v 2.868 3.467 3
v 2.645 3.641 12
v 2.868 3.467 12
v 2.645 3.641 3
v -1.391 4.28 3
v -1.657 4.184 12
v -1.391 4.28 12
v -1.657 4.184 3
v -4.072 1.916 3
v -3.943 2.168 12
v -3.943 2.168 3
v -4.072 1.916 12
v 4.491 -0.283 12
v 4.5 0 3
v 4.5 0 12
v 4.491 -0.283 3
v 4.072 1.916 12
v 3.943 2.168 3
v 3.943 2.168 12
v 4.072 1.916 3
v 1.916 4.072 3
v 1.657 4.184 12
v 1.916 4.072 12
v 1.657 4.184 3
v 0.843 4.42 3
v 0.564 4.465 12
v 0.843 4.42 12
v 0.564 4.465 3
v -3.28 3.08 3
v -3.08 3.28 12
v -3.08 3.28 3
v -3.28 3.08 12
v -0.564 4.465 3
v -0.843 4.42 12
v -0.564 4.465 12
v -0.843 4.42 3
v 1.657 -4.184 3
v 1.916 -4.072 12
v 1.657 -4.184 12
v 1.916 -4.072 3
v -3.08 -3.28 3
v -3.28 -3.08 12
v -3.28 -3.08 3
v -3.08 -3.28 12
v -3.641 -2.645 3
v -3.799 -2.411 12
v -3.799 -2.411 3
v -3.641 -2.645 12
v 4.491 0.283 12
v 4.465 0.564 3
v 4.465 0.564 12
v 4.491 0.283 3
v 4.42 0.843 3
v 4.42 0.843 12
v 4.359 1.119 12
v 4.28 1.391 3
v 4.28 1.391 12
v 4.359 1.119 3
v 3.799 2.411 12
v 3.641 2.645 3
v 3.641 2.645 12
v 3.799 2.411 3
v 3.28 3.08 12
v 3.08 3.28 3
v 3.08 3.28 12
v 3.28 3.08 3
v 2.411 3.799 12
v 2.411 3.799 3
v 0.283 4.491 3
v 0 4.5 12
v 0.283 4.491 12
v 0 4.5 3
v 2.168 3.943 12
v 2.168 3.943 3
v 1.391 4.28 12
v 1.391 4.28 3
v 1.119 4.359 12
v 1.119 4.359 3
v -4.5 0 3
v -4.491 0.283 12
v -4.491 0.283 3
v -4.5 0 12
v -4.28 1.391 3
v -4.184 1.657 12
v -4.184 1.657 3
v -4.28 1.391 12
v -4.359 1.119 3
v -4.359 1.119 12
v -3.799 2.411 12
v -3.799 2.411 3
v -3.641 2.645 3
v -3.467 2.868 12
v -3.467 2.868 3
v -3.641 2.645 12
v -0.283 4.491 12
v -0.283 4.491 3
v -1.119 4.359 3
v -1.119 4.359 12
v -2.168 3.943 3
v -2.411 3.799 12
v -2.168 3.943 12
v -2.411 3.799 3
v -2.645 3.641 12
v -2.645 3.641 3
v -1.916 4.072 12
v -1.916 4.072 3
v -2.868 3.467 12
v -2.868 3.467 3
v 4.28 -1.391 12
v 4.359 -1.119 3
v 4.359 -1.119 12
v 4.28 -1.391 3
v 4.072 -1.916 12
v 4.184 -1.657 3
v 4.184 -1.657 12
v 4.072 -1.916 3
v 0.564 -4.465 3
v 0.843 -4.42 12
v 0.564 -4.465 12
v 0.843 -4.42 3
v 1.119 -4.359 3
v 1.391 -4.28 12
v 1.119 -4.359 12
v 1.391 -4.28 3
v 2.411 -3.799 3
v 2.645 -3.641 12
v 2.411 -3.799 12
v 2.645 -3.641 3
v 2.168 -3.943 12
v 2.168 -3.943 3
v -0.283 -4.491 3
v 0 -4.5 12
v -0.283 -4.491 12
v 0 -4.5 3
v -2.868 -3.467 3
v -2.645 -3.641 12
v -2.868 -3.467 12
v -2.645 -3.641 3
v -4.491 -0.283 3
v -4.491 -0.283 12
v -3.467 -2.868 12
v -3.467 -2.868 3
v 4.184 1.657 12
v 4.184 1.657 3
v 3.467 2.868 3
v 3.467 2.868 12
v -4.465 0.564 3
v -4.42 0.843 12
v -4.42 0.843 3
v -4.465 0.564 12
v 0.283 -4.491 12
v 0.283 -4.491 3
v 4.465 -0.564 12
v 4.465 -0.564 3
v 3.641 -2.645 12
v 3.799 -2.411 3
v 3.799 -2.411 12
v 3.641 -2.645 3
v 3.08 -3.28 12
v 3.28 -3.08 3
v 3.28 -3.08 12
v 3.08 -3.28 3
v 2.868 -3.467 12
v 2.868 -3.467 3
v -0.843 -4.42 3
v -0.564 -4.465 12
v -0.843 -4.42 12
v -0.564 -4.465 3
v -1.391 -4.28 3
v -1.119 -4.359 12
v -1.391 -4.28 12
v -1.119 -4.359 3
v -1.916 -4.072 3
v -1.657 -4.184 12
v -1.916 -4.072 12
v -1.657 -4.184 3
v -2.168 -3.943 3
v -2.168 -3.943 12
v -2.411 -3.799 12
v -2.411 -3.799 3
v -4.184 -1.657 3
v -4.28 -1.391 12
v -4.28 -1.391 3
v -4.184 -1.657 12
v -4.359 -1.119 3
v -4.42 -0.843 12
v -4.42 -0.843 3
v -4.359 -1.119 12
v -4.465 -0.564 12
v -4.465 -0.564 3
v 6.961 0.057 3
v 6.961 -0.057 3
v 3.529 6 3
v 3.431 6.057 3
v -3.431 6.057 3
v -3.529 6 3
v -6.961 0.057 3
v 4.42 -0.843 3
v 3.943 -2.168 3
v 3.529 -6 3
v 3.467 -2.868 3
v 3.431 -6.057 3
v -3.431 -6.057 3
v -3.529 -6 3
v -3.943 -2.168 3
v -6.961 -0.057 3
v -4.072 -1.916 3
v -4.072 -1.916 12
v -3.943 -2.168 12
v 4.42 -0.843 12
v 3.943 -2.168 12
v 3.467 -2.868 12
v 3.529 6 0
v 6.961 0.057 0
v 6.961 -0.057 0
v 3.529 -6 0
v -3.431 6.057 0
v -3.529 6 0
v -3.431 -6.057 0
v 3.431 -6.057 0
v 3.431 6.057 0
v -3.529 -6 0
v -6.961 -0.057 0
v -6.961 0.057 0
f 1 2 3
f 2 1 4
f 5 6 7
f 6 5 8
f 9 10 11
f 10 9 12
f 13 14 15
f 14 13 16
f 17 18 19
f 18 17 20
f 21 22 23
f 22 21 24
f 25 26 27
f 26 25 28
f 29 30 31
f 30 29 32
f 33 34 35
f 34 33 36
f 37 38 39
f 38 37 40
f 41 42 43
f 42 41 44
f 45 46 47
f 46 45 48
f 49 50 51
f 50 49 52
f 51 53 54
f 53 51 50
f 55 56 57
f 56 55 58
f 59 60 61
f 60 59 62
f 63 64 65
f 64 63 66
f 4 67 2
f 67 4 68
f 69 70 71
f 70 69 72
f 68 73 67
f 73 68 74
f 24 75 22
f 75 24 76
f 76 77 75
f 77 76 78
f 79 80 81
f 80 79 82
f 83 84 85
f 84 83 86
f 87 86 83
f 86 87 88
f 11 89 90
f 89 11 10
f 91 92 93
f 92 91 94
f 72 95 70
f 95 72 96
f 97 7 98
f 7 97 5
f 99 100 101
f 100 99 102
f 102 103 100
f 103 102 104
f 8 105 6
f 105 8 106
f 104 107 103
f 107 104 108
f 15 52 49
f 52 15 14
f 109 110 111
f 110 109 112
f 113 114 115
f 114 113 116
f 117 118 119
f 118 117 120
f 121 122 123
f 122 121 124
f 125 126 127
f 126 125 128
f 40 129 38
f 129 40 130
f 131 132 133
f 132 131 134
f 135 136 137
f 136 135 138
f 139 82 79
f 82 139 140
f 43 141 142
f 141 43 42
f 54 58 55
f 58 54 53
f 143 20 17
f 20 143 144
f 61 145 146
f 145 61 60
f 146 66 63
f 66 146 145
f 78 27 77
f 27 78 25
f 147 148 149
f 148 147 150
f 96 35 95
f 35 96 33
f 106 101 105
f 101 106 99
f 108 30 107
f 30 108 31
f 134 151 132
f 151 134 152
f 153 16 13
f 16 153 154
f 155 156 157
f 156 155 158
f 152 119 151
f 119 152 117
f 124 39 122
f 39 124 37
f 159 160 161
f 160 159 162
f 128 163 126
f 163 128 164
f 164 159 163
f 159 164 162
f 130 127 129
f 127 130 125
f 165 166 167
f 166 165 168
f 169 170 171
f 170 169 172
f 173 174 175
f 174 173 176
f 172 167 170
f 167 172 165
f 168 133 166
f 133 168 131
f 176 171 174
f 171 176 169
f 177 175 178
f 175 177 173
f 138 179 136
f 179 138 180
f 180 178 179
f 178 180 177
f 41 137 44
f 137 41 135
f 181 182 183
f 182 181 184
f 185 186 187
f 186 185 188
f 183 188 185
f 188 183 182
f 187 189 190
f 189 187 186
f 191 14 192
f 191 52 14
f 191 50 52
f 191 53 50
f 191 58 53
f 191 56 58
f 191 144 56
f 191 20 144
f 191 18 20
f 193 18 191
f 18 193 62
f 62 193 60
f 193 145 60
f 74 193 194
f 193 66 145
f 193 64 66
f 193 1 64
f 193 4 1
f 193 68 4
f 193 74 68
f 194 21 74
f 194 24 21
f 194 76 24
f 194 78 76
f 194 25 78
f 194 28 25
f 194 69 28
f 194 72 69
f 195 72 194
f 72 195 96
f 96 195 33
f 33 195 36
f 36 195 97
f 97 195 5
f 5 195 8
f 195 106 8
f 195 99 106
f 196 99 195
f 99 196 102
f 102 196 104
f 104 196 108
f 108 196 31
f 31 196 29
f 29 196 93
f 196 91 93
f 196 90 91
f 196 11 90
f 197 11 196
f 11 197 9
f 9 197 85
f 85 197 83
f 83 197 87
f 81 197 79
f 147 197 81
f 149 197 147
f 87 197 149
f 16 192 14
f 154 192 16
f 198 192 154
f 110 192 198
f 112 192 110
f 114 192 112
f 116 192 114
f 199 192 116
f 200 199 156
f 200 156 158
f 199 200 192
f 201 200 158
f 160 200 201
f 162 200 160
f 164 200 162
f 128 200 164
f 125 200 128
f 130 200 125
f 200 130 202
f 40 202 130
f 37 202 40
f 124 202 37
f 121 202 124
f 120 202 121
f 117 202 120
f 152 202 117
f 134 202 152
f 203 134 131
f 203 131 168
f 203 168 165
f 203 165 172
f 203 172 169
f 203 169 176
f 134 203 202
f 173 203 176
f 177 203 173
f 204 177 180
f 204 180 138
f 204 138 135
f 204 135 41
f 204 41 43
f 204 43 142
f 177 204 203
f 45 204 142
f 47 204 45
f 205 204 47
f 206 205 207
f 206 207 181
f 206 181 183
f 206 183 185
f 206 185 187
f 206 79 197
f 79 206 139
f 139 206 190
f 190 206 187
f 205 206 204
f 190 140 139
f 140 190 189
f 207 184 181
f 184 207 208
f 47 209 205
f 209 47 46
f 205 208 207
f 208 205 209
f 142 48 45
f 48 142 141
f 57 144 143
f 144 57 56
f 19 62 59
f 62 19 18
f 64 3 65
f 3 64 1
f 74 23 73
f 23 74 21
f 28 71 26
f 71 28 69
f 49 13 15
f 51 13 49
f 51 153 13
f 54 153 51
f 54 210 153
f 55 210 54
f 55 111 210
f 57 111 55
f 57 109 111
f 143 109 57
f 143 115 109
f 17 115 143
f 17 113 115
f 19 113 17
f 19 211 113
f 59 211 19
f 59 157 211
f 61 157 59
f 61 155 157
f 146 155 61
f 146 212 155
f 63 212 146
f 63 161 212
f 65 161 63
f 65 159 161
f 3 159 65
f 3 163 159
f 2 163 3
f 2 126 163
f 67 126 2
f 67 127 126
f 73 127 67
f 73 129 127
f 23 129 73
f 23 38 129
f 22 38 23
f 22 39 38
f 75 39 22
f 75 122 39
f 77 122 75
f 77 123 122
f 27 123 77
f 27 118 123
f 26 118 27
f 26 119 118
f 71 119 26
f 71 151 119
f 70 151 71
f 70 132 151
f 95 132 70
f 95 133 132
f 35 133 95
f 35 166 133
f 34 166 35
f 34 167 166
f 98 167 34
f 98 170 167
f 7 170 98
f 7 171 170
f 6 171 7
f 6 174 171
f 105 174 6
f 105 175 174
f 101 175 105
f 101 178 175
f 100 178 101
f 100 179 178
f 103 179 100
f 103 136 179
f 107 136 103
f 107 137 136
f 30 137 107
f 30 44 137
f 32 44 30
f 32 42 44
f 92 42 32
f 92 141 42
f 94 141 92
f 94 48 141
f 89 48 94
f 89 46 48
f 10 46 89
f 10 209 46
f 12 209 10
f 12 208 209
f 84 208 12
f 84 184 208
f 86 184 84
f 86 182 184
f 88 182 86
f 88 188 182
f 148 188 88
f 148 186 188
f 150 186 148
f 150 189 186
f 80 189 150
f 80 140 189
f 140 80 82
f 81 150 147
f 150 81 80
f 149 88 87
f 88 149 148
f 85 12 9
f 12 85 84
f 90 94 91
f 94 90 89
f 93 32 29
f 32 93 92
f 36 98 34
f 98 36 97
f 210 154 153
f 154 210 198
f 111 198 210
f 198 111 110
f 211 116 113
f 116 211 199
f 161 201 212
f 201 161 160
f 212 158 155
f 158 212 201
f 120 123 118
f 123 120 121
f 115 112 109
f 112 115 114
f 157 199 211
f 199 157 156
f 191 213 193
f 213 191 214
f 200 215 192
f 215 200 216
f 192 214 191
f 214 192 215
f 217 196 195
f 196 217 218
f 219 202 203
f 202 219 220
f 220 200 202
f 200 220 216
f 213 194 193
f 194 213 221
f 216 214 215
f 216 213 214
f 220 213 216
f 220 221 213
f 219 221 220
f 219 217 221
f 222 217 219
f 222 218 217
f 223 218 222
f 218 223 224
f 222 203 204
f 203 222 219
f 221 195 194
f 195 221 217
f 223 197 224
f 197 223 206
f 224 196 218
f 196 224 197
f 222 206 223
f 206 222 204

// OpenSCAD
module cylindre()
{
    translate([0,0,3]) cylinder(9,d1=9,d2=9,$fn=100);
}

module phex(wid,rad,height){
hull(){
        translate([wid/2-rad,0,0])cylinder(r=rad,h=height);
        rotate([0,0,60])translate([wid/2-rad,0,0])cylinder(r=rad,h=height);
        rotate([0,0,120])translate([wid/2-rad,0,0])cylinder(r=rad,h=height);
        rotate([0,0,180])translate([wid/2-rad,0,0])cylinder(r=rad,h=height);
        rotate([0,0,240])translate([wid/2-rad,0,0])cylinder(r=rad,h=height);
        rotate([0,0,300])translate([wid/2-rad,0,0])cylinder(r=rad,h=height);
        }
    }

module fhex(wid,height){
        hull(){
        cube([wid/1.7,wid,height],center = true);
        rotate([0,0,120])cube([wid/1.7,wid,height],center = true);
        rotate([0,0,240])cube([wid/1.7,wid,height],center = true);
        }
}
cylindre();
translate([0,0,1.5]) fhex(12,3);
